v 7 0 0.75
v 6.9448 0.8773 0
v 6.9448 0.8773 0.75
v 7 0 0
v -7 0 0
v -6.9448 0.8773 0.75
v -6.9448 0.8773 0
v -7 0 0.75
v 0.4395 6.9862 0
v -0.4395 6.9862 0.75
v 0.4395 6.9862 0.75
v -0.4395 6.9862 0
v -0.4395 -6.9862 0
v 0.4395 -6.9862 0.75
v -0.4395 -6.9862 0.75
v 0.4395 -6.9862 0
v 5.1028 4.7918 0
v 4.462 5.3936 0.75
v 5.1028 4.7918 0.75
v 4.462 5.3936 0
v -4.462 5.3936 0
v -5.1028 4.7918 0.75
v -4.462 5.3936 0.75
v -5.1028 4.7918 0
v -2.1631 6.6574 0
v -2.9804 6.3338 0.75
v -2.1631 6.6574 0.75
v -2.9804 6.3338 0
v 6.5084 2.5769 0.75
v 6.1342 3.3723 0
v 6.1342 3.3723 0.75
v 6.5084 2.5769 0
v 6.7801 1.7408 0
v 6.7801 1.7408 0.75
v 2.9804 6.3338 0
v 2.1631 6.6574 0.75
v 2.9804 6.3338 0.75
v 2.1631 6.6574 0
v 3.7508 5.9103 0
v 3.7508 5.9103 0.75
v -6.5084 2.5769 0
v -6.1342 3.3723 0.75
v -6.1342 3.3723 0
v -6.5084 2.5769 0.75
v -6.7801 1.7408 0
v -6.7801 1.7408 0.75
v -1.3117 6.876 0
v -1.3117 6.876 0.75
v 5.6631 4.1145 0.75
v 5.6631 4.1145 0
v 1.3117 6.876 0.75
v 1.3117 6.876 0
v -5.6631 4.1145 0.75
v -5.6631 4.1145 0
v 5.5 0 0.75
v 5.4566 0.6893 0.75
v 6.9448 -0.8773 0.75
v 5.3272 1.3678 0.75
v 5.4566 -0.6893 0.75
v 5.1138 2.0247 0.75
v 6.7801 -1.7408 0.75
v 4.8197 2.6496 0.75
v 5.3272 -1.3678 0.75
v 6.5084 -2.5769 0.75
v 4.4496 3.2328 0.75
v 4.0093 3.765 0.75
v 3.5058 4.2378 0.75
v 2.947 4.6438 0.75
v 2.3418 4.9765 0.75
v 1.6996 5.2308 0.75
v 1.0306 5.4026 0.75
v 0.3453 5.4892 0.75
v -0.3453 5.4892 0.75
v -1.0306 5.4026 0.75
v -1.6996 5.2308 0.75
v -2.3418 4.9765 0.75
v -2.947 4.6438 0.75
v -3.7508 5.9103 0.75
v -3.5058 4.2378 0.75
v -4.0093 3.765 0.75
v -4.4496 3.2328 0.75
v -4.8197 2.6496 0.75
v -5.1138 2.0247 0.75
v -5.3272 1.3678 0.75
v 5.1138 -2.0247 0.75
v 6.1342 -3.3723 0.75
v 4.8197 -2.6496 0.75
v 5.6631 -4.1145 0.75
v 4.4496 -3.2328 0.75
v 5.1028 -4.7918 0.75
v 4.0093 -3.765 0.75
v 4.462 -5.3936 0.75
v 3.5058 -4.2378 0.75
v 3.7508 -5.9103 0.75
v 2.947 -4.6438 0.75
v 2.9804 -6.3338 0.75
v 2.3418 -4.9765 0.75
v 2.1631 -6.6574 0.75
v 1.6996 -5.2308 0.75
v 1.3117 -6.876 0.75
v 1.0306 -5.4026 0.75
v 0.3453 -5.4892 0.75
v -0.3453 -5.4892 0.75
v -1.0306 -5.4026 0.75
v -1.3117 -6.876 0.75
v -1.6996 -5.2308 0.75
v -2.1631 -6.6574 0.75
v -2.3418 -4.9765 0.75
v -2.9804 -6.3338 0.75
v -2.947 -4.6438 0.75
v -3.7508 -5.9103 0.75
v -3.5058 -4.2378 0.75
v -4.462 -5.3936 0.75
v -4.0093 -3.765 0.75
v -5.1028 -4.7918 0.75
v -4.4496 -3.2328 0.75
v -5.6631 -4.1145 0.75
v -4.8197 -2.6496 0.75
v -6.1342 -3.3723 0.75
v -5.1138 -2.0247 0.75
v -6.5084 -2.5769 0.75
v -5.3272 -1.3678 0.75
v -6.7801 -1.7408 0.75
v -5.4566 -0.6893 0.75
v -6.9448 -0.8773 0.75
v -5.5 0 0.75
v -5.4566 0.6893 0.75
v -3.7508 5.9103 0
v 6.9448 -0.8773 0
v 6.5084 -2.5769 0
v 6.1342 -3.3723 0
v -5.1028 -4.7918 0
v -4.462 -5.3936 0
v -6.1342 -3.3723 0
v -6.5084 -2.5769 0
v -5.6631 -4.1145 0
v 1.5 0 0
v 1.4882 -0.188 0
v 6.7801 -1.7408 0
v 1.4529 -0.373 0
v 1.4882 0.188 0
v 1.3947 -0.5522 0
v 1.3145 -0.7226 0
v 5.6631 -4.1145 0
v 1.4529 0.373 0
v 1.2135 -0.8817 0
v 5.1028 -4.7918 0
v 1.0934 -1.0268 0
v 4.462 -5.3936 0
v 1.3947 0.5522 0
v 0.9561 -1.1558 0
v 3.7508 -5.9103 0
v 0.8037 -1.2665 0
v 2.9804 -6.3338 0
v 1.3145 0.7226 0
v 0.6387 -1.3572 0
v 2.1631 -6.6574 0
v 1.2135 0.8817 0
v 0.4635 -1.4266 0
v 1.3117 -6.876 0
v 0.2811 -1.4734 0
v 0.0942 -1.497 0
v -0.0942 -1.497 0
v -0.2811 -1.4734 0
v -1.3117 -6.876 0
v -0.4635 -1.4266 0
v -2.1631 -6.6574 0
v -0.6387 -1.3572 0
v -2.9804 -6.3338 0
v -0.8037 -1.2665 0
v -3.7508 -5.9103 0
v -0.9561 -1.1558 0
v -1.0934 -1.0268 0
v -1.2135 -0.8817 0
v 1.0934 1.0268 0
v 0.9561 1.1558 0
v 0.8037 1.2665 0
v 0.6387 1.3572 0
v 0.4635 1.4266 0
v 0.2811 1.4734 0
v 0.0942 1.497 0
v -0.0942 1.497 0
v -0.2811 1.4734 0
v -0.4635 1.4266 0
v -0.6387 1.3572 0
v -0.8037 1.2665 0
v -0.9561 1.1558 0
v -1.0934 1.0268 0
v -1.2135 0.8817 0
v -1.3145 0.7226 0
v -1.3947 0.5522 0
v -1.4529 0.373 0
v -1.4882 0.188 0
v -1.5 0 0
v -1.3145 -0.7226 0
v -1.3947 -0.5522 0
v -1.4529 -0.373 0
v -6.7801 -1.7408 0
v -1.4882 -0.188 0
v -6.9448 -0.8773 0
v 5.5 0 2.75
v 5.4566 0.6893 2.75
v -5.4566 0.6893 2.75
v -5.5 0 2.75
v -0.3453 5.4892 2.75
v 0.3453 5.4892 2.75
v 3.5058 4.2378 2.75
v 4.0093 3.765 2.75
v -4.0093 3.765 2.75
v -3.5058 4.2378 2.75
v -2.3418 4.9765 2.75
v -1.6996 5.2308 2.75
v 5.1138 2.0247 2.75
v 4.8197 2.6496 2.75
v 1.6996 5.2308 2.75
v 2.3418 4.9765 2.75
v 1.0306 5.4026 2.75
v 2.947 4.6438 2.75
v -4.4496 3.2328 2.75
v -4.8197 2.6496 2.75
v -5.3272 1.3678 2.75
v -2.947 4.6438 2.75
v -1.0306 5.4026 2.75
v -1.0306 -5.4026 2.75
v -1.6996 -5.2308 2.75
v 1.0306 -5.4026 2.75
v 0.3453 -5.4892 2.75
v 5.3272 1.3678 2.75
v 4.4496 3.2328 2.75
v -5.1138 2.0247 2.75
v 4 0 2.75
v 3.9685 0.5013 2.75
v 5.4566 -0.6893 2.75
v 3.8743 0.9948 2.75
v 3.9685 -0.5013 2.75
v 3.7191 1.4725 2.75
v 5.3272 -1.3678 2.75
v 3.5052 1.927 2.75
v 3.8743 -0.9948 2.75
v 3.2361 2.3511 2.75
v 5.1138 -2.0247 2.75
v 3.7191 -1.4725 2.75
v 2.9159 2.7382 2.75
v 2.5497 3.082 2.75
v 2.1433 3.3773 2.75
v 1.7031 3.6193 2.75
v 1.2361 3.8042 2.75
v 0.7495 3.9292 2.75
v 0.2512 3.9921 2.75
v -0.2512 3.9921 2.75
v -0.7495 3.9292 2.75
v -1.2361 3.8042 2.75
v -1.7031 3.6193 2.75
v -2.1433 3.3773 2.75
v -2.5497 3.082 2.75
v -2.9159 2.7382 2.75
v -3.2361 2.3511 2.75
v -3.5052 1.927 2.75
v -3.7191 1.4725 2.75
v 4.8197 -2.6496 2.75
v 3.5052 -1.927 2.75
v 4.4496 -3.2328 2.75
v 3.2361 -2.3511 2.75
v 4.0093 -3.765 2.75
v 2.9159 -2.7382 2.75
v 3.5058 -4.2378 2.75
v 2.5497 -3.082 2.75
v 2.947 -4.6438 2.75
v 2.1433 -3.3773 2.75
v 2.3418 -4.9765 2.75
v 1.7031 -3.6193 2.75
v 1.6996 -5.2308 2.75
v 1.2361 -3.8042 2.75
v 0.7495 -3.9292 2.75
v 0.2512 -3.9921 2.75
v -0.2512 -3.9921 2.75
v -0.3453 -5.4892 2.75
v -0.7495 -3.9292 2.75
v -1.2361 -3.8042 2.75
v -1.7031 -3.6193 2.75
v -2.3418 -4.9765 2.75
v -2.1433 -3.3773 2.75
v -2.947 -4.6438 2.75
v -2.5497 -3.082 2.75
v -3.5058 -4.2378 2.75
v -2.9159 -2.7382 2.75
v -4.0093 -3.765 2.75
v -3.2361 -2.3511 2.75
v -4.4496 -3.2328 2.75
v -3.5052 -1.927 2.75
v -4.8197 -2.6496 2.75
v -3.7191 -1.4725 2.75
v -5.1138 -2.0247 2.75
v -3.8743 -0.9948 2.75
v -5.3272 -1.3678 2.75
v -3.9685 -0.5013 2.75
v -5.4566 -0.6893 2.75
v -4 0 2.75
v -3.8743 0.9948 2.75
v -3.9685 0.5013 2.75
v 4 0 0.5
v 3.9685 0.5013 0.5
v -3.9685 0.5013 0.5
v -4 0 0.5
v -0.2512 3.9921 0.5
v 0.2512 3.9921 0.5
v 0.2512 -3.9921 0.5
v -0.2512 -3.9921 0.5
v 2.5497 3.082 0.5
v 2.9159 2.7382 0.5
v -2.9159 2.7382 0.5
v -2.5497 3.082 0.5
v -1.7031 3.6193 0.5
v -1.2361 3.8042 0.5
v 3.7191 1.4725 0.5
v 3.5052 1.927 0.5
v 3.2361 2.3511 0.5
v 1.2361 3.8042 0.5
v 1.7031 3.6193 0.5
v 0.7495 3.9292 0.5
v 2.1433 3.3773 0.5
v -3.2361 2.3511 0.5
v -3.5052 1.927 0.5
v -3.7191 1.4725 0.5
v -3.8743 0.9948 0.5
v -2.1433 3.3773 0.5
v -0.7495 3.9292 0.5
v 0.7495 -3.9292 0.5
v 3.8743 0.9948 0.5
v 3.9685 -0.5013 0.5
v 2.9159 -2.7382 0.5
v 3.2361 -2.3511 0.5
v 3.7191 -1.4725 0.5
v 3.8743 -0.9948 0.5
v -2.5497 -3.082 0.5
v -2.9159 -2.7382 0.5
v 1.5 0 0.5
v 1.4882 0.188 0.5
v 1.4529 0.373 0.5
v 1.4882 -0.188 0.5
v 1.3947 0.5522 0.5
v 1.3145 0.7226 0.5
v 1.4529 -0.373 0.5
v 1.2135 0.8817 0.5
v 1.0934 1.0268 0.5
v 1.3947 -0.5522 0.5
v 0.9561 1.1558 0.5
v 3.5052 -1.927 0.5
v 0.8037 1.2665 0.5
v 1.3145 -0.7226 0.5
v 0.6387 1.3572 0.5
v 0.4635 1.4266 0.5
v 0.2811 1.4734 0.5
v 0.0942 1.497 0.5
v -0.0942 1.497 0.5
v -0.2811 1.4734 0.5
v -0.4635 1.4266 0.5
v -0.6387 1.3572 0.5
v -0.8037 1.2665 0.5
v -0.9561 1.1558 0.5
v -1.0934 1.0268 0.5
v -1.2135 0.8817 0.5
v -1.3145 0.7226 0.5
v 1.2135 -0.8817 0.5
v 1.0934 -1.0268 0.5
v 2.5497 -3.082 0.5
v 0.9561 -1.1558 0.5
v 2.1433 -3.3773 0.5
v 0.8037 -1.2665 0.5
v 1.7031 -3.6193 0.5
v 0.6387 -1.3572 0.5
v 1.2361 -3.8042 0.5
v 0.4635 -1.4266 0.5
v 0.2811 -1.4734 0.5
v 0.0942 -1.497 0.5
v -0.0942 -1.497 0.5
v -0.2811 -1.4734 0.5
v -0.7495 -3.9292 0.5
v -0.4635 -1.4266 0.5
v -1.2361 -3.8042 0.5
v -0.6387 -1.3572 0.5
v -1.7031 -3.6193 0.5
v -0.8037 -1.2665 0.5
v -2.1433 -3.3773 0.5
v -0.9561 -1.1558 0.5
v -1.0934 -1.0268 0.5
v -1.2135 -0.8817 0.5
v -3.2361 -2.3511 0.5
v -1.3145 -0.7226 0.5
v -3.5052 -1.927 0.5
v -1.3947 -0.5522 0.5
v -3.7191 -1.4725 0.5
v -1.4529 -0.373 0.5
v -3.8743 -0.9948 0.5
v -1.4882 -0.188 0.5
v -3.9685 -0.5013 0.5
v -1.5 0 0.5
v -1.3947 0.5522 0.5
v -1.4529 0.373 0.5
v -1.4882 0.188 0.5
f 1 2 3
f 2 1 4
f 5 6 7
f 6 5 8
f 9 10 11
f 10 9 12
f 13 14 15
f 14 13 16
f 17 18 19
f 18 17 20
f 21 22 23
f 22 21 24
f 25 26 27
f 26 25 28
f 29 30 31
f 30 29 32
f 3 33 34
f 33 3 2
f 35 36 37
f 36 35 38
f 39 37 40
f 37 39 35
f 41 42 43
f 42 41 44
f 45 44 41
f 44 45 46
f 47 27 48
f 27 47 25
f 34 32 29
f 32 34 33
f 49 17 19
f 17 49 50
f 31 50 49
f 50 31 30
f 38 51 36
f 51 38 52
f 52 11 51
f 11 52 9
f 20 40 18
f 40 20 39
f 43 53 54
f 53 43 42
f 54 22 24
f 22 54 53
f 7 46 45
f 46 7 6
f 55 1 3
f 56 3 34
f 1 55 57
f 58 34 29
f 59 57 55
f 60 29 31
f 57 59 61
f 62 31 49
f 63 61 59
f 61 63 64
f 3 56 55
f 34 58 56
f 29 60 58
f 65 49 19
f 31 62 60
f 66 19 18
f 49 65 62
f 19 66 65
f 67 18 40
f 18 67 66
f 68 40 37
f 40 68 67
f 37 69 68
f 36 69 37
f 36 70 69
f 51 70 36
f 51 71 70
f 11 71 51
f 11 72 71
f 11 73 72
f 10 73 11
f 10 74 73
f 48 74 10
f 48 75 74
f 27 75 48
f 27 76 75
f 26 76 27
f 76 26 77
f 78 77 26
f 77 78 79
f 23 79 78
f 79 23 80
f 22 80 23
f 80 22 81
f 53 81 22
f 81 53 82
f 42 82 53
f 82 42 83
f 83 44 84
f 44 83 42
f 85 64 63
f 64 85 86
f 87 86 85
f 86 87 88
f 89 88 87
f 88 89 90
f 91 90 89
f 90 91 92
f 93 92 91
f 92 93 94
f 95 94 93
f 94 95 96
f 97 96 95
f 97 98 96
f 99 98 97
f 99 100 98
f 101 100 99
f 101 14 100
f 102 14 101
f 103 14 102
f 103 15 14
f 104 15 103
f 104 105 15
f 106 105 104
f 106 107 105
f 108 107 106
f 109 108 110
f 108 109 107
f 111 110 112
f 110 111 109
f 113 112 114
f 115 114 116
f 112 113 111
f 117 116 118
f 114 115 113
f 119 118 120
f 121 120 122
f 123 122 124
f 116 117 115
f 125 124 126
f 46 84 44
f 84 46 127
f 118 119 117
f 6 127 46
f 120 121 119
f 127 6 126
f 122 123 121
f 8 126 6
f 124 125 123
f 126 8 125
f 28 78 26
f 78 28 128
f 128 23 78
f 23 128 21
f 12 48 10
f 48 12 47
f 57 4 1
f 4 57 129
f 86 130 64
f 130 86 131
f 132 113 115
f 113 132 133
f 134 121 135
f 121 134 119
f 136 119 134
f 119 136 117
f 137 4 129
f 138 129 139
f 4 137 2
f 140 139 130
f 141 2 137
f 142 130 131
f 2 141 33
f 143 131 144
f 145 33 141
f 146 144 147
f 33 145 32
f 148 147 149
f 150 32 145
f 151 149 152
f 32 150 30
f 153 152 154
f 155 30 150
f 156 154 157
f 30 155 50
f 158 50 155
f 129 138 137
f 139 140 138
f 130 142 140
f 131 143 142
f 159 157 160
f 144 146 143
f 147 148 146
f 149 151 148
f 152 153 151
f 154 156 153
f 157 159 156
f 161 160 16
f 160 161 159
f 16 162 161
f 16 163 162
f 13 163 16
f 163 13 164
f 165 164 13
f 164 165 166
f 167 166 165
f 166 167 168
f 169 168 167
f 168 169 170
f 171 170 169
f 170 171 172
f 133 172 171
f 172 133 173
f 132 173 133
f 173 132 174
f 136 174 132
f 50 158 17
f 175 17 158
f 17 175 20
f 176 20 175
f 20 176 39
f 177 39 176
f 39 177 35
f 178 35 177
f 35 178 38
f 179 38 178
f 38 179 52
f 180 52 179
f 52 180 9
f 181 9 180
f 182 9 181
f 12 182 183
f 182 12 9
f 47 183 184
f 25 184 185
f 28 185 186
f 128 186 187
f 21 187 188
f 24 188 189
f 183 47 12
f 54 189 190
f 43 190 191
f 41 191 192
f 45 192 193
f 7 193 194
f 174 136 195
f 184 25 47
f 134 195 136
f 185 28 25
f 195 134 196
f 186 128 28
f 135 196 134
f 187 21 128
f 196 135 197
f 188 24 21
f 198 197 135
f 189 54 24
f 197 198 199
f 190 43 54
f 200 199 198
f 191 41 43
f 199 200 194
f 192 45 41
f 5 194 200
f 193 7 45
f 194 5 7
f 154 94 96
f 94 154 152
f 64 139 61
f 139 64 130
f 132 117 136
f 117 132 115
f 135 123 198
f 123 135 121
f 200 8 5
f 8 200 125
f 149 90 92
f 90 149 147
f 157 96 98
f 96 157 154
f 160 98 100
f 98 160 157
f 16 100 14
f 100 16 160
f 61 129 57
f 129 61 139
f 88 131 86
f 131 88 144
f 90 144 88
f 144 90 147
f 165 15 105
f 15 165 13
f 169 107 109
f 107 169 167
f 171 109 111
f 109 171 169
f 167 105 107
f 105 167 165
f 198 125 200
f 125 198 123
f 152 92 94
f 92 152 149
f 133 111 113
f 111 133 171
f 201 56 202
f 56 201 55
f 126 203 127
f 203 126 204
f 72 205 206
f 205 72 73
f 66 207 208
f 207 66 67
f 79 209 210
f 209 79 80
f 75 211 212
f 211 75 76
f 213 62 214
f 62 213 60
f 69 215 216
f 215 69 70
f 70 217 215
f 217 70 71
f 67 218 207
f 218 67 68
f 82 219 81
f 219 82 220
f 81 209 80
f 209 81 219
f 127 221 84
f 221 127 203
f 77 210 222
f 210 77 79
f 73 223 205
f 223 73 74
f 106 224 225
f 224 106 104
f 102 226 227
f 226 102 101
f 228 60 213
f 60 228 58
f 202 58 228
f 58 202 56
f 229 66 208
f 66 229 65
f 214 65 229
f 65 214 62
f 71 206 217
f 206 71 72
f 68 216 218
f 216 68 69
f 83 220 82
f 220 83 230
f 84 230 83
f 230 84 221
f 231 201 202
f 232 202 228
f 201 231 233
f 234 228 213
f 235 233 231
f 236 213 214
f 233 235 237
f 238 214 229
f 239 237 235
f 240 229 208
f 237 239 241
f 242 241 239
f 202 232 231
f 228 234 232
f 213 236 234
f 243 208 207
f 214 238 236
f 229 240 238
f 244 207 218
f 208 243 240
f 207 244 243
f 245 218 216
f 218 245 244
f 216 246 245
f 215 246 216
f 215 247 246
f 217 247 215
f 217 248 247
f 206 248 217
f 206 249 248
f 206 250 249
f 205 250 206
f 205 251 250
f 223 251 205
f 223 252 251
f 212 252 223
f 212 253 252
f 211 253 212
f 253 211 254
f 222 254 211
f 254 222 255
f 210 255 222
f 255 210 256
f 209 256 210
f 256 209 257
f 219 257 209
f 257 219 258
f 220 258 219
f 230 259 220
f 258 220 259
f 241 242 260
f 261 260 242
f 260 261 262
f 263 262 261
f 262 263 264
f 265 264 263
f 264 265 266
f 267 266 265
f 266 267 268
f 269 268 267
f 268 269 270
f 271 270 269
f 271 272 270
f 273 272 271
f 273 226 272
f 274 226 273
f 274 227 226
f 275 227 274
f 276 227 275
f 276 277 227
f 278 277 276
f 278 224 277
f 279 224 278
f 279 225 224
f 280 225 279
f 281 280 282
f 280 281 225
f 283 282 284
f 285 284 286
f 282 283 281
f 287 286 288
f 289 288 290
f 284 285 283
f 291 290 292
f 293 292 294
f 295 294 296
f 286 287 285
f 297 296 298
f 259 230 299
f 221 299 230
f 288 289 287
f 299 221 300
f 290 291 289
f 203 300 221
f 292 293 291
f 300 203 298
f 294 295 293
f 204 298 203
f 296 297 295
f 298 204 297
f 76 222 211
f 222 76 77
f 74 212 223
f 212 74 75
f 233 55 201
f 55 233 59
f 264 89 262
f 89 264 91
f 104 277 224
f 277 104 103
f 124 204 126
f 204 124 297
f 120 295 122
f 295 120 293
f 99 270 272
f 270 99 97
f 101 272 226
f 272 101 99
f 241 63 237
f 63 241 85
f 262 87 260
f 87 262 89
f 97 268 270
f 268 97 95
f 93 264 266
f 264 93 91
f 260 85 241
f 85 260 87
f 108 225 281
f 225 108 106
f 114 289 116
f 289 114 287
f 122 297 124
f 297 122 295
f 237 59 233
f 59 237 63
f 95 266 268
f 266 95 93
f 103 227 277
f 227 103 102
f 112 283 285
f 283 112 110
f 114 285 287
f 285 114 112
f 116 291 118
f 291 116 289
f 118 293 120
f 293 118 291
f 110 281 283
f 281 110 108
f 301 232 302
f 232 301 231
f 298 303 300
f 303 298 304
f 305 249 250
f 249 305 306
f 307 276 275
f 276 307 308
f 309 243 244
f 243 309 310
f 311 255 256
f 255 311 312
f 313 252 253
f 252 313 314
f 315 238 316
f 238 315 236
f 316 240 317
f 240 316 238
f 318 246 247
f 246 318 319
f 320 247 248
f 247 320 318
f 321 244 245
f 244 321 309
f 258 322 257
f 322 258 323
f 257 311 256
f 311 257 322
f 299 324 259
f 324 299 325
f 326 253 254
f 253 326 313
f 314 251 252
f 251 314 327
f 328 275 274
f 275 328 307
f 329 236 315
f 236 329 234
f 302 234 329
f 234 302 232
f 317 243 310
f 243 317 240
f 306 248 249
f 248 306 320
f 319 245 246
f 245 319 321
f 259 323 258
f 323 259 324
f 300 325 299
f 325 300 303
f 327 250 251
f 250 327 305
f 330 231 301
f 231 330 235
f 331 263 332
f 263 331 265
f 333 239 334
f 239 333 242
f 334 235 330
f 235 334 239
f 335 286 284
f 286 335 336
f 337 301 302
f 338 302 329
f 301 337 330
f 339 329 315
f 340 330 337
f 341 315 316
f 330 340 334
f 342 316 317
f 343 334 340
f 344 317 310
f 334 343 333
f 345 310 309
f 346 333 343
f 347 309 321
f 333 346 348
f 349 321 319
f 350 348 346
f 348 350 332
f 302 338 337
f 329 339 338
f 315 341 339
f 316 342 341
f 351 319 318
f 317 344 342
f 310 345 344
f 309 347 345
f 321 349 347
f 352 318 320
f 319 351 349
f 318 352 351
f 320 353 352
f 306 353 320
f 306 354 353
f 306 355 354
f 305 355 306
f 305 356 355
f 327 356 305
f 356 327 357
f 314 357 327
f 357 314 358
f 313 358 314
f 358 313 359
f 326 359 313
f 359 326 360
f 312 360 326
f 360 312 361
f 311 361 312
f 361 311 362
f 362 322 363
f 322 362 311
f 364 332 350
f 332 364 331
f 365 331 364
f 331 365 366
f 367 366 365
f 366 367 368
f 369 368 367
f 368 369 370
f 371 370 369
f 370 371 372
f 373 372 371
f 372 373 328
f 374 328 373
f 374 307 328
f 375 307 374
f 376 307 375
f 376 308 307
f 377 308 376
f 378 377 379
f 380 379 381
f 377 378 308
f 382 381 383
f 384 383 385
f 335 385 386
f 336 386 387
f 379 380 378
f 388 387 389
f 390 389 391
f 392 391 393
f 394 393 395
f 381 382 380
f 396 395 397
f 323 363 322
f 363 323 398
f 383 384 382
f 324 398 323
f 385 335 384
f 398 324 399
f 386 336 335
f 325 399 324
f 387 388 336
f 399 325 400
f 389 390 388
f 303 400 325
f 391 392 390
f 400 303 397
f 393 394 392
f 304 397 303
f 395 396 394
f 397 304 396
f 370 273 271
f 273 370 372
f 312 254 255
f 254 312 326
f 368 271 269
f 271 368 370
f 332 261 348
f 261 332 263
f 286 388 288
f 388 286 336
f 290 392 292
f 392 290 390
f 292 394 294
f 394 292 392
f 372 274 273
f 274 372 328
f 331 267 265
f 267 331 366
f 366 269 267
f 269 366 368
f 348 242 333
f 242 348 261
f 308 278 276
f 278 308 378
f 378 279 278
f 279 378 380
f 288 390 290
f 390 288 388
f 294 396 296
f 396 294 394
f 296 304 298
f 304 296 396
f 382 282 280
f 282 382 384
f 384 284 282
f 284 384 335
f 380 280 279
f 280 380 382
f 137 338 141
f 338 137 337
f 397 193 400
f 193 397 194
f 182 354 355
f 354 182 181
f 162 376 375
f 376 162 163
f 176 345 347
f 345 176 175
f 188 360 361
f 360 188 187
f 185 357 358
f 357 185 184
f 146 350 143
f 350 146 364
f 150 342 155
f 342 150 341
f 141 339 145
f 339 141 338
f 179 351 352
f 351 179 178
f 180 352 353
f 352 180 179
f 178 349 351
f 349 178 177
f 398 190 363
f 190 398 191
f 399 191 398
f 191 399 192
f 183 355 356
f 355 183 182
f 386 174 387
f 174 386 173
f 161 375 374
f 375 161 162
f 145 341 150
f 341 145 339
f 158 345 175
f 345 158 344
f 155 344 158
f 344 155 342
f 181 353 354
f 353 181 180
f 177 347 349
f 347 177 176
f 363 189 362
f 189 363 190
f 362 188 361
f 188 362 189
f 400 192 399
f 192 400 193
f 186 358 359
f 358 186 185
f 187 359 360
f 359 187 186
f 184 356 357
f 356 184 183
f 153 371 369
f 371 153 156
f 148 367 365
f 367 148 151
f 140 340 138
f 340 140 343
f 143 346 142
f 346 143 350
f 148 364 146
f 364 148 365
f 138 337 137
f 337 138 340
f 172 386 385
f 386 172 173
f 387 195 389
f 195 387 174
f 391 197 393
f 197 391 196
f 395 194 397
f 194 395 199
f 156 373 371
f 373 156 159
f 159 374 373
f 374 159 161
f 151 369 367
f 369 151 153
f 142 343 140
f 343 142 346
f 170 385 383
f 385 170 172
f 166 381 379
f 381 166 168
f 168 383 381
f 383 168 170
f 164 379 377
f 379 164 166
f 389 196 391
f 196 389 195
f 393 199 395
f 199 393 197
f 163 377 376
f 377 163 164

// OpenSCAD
difference() {
  union() {
    cylinder(h=.75, d=14, $fn=50);    
    translate([0,0,.75]) {
      cylinder(h=2, d=11, $fn=50);
    }
  }
   translate([0,0,.5]) {
    cylinder(h=5, d=8, $fn=50);
  }
   translate([0,0,-2]) {
     cylinder(h=5.25, d=3, $fn=50);
   }     
}
